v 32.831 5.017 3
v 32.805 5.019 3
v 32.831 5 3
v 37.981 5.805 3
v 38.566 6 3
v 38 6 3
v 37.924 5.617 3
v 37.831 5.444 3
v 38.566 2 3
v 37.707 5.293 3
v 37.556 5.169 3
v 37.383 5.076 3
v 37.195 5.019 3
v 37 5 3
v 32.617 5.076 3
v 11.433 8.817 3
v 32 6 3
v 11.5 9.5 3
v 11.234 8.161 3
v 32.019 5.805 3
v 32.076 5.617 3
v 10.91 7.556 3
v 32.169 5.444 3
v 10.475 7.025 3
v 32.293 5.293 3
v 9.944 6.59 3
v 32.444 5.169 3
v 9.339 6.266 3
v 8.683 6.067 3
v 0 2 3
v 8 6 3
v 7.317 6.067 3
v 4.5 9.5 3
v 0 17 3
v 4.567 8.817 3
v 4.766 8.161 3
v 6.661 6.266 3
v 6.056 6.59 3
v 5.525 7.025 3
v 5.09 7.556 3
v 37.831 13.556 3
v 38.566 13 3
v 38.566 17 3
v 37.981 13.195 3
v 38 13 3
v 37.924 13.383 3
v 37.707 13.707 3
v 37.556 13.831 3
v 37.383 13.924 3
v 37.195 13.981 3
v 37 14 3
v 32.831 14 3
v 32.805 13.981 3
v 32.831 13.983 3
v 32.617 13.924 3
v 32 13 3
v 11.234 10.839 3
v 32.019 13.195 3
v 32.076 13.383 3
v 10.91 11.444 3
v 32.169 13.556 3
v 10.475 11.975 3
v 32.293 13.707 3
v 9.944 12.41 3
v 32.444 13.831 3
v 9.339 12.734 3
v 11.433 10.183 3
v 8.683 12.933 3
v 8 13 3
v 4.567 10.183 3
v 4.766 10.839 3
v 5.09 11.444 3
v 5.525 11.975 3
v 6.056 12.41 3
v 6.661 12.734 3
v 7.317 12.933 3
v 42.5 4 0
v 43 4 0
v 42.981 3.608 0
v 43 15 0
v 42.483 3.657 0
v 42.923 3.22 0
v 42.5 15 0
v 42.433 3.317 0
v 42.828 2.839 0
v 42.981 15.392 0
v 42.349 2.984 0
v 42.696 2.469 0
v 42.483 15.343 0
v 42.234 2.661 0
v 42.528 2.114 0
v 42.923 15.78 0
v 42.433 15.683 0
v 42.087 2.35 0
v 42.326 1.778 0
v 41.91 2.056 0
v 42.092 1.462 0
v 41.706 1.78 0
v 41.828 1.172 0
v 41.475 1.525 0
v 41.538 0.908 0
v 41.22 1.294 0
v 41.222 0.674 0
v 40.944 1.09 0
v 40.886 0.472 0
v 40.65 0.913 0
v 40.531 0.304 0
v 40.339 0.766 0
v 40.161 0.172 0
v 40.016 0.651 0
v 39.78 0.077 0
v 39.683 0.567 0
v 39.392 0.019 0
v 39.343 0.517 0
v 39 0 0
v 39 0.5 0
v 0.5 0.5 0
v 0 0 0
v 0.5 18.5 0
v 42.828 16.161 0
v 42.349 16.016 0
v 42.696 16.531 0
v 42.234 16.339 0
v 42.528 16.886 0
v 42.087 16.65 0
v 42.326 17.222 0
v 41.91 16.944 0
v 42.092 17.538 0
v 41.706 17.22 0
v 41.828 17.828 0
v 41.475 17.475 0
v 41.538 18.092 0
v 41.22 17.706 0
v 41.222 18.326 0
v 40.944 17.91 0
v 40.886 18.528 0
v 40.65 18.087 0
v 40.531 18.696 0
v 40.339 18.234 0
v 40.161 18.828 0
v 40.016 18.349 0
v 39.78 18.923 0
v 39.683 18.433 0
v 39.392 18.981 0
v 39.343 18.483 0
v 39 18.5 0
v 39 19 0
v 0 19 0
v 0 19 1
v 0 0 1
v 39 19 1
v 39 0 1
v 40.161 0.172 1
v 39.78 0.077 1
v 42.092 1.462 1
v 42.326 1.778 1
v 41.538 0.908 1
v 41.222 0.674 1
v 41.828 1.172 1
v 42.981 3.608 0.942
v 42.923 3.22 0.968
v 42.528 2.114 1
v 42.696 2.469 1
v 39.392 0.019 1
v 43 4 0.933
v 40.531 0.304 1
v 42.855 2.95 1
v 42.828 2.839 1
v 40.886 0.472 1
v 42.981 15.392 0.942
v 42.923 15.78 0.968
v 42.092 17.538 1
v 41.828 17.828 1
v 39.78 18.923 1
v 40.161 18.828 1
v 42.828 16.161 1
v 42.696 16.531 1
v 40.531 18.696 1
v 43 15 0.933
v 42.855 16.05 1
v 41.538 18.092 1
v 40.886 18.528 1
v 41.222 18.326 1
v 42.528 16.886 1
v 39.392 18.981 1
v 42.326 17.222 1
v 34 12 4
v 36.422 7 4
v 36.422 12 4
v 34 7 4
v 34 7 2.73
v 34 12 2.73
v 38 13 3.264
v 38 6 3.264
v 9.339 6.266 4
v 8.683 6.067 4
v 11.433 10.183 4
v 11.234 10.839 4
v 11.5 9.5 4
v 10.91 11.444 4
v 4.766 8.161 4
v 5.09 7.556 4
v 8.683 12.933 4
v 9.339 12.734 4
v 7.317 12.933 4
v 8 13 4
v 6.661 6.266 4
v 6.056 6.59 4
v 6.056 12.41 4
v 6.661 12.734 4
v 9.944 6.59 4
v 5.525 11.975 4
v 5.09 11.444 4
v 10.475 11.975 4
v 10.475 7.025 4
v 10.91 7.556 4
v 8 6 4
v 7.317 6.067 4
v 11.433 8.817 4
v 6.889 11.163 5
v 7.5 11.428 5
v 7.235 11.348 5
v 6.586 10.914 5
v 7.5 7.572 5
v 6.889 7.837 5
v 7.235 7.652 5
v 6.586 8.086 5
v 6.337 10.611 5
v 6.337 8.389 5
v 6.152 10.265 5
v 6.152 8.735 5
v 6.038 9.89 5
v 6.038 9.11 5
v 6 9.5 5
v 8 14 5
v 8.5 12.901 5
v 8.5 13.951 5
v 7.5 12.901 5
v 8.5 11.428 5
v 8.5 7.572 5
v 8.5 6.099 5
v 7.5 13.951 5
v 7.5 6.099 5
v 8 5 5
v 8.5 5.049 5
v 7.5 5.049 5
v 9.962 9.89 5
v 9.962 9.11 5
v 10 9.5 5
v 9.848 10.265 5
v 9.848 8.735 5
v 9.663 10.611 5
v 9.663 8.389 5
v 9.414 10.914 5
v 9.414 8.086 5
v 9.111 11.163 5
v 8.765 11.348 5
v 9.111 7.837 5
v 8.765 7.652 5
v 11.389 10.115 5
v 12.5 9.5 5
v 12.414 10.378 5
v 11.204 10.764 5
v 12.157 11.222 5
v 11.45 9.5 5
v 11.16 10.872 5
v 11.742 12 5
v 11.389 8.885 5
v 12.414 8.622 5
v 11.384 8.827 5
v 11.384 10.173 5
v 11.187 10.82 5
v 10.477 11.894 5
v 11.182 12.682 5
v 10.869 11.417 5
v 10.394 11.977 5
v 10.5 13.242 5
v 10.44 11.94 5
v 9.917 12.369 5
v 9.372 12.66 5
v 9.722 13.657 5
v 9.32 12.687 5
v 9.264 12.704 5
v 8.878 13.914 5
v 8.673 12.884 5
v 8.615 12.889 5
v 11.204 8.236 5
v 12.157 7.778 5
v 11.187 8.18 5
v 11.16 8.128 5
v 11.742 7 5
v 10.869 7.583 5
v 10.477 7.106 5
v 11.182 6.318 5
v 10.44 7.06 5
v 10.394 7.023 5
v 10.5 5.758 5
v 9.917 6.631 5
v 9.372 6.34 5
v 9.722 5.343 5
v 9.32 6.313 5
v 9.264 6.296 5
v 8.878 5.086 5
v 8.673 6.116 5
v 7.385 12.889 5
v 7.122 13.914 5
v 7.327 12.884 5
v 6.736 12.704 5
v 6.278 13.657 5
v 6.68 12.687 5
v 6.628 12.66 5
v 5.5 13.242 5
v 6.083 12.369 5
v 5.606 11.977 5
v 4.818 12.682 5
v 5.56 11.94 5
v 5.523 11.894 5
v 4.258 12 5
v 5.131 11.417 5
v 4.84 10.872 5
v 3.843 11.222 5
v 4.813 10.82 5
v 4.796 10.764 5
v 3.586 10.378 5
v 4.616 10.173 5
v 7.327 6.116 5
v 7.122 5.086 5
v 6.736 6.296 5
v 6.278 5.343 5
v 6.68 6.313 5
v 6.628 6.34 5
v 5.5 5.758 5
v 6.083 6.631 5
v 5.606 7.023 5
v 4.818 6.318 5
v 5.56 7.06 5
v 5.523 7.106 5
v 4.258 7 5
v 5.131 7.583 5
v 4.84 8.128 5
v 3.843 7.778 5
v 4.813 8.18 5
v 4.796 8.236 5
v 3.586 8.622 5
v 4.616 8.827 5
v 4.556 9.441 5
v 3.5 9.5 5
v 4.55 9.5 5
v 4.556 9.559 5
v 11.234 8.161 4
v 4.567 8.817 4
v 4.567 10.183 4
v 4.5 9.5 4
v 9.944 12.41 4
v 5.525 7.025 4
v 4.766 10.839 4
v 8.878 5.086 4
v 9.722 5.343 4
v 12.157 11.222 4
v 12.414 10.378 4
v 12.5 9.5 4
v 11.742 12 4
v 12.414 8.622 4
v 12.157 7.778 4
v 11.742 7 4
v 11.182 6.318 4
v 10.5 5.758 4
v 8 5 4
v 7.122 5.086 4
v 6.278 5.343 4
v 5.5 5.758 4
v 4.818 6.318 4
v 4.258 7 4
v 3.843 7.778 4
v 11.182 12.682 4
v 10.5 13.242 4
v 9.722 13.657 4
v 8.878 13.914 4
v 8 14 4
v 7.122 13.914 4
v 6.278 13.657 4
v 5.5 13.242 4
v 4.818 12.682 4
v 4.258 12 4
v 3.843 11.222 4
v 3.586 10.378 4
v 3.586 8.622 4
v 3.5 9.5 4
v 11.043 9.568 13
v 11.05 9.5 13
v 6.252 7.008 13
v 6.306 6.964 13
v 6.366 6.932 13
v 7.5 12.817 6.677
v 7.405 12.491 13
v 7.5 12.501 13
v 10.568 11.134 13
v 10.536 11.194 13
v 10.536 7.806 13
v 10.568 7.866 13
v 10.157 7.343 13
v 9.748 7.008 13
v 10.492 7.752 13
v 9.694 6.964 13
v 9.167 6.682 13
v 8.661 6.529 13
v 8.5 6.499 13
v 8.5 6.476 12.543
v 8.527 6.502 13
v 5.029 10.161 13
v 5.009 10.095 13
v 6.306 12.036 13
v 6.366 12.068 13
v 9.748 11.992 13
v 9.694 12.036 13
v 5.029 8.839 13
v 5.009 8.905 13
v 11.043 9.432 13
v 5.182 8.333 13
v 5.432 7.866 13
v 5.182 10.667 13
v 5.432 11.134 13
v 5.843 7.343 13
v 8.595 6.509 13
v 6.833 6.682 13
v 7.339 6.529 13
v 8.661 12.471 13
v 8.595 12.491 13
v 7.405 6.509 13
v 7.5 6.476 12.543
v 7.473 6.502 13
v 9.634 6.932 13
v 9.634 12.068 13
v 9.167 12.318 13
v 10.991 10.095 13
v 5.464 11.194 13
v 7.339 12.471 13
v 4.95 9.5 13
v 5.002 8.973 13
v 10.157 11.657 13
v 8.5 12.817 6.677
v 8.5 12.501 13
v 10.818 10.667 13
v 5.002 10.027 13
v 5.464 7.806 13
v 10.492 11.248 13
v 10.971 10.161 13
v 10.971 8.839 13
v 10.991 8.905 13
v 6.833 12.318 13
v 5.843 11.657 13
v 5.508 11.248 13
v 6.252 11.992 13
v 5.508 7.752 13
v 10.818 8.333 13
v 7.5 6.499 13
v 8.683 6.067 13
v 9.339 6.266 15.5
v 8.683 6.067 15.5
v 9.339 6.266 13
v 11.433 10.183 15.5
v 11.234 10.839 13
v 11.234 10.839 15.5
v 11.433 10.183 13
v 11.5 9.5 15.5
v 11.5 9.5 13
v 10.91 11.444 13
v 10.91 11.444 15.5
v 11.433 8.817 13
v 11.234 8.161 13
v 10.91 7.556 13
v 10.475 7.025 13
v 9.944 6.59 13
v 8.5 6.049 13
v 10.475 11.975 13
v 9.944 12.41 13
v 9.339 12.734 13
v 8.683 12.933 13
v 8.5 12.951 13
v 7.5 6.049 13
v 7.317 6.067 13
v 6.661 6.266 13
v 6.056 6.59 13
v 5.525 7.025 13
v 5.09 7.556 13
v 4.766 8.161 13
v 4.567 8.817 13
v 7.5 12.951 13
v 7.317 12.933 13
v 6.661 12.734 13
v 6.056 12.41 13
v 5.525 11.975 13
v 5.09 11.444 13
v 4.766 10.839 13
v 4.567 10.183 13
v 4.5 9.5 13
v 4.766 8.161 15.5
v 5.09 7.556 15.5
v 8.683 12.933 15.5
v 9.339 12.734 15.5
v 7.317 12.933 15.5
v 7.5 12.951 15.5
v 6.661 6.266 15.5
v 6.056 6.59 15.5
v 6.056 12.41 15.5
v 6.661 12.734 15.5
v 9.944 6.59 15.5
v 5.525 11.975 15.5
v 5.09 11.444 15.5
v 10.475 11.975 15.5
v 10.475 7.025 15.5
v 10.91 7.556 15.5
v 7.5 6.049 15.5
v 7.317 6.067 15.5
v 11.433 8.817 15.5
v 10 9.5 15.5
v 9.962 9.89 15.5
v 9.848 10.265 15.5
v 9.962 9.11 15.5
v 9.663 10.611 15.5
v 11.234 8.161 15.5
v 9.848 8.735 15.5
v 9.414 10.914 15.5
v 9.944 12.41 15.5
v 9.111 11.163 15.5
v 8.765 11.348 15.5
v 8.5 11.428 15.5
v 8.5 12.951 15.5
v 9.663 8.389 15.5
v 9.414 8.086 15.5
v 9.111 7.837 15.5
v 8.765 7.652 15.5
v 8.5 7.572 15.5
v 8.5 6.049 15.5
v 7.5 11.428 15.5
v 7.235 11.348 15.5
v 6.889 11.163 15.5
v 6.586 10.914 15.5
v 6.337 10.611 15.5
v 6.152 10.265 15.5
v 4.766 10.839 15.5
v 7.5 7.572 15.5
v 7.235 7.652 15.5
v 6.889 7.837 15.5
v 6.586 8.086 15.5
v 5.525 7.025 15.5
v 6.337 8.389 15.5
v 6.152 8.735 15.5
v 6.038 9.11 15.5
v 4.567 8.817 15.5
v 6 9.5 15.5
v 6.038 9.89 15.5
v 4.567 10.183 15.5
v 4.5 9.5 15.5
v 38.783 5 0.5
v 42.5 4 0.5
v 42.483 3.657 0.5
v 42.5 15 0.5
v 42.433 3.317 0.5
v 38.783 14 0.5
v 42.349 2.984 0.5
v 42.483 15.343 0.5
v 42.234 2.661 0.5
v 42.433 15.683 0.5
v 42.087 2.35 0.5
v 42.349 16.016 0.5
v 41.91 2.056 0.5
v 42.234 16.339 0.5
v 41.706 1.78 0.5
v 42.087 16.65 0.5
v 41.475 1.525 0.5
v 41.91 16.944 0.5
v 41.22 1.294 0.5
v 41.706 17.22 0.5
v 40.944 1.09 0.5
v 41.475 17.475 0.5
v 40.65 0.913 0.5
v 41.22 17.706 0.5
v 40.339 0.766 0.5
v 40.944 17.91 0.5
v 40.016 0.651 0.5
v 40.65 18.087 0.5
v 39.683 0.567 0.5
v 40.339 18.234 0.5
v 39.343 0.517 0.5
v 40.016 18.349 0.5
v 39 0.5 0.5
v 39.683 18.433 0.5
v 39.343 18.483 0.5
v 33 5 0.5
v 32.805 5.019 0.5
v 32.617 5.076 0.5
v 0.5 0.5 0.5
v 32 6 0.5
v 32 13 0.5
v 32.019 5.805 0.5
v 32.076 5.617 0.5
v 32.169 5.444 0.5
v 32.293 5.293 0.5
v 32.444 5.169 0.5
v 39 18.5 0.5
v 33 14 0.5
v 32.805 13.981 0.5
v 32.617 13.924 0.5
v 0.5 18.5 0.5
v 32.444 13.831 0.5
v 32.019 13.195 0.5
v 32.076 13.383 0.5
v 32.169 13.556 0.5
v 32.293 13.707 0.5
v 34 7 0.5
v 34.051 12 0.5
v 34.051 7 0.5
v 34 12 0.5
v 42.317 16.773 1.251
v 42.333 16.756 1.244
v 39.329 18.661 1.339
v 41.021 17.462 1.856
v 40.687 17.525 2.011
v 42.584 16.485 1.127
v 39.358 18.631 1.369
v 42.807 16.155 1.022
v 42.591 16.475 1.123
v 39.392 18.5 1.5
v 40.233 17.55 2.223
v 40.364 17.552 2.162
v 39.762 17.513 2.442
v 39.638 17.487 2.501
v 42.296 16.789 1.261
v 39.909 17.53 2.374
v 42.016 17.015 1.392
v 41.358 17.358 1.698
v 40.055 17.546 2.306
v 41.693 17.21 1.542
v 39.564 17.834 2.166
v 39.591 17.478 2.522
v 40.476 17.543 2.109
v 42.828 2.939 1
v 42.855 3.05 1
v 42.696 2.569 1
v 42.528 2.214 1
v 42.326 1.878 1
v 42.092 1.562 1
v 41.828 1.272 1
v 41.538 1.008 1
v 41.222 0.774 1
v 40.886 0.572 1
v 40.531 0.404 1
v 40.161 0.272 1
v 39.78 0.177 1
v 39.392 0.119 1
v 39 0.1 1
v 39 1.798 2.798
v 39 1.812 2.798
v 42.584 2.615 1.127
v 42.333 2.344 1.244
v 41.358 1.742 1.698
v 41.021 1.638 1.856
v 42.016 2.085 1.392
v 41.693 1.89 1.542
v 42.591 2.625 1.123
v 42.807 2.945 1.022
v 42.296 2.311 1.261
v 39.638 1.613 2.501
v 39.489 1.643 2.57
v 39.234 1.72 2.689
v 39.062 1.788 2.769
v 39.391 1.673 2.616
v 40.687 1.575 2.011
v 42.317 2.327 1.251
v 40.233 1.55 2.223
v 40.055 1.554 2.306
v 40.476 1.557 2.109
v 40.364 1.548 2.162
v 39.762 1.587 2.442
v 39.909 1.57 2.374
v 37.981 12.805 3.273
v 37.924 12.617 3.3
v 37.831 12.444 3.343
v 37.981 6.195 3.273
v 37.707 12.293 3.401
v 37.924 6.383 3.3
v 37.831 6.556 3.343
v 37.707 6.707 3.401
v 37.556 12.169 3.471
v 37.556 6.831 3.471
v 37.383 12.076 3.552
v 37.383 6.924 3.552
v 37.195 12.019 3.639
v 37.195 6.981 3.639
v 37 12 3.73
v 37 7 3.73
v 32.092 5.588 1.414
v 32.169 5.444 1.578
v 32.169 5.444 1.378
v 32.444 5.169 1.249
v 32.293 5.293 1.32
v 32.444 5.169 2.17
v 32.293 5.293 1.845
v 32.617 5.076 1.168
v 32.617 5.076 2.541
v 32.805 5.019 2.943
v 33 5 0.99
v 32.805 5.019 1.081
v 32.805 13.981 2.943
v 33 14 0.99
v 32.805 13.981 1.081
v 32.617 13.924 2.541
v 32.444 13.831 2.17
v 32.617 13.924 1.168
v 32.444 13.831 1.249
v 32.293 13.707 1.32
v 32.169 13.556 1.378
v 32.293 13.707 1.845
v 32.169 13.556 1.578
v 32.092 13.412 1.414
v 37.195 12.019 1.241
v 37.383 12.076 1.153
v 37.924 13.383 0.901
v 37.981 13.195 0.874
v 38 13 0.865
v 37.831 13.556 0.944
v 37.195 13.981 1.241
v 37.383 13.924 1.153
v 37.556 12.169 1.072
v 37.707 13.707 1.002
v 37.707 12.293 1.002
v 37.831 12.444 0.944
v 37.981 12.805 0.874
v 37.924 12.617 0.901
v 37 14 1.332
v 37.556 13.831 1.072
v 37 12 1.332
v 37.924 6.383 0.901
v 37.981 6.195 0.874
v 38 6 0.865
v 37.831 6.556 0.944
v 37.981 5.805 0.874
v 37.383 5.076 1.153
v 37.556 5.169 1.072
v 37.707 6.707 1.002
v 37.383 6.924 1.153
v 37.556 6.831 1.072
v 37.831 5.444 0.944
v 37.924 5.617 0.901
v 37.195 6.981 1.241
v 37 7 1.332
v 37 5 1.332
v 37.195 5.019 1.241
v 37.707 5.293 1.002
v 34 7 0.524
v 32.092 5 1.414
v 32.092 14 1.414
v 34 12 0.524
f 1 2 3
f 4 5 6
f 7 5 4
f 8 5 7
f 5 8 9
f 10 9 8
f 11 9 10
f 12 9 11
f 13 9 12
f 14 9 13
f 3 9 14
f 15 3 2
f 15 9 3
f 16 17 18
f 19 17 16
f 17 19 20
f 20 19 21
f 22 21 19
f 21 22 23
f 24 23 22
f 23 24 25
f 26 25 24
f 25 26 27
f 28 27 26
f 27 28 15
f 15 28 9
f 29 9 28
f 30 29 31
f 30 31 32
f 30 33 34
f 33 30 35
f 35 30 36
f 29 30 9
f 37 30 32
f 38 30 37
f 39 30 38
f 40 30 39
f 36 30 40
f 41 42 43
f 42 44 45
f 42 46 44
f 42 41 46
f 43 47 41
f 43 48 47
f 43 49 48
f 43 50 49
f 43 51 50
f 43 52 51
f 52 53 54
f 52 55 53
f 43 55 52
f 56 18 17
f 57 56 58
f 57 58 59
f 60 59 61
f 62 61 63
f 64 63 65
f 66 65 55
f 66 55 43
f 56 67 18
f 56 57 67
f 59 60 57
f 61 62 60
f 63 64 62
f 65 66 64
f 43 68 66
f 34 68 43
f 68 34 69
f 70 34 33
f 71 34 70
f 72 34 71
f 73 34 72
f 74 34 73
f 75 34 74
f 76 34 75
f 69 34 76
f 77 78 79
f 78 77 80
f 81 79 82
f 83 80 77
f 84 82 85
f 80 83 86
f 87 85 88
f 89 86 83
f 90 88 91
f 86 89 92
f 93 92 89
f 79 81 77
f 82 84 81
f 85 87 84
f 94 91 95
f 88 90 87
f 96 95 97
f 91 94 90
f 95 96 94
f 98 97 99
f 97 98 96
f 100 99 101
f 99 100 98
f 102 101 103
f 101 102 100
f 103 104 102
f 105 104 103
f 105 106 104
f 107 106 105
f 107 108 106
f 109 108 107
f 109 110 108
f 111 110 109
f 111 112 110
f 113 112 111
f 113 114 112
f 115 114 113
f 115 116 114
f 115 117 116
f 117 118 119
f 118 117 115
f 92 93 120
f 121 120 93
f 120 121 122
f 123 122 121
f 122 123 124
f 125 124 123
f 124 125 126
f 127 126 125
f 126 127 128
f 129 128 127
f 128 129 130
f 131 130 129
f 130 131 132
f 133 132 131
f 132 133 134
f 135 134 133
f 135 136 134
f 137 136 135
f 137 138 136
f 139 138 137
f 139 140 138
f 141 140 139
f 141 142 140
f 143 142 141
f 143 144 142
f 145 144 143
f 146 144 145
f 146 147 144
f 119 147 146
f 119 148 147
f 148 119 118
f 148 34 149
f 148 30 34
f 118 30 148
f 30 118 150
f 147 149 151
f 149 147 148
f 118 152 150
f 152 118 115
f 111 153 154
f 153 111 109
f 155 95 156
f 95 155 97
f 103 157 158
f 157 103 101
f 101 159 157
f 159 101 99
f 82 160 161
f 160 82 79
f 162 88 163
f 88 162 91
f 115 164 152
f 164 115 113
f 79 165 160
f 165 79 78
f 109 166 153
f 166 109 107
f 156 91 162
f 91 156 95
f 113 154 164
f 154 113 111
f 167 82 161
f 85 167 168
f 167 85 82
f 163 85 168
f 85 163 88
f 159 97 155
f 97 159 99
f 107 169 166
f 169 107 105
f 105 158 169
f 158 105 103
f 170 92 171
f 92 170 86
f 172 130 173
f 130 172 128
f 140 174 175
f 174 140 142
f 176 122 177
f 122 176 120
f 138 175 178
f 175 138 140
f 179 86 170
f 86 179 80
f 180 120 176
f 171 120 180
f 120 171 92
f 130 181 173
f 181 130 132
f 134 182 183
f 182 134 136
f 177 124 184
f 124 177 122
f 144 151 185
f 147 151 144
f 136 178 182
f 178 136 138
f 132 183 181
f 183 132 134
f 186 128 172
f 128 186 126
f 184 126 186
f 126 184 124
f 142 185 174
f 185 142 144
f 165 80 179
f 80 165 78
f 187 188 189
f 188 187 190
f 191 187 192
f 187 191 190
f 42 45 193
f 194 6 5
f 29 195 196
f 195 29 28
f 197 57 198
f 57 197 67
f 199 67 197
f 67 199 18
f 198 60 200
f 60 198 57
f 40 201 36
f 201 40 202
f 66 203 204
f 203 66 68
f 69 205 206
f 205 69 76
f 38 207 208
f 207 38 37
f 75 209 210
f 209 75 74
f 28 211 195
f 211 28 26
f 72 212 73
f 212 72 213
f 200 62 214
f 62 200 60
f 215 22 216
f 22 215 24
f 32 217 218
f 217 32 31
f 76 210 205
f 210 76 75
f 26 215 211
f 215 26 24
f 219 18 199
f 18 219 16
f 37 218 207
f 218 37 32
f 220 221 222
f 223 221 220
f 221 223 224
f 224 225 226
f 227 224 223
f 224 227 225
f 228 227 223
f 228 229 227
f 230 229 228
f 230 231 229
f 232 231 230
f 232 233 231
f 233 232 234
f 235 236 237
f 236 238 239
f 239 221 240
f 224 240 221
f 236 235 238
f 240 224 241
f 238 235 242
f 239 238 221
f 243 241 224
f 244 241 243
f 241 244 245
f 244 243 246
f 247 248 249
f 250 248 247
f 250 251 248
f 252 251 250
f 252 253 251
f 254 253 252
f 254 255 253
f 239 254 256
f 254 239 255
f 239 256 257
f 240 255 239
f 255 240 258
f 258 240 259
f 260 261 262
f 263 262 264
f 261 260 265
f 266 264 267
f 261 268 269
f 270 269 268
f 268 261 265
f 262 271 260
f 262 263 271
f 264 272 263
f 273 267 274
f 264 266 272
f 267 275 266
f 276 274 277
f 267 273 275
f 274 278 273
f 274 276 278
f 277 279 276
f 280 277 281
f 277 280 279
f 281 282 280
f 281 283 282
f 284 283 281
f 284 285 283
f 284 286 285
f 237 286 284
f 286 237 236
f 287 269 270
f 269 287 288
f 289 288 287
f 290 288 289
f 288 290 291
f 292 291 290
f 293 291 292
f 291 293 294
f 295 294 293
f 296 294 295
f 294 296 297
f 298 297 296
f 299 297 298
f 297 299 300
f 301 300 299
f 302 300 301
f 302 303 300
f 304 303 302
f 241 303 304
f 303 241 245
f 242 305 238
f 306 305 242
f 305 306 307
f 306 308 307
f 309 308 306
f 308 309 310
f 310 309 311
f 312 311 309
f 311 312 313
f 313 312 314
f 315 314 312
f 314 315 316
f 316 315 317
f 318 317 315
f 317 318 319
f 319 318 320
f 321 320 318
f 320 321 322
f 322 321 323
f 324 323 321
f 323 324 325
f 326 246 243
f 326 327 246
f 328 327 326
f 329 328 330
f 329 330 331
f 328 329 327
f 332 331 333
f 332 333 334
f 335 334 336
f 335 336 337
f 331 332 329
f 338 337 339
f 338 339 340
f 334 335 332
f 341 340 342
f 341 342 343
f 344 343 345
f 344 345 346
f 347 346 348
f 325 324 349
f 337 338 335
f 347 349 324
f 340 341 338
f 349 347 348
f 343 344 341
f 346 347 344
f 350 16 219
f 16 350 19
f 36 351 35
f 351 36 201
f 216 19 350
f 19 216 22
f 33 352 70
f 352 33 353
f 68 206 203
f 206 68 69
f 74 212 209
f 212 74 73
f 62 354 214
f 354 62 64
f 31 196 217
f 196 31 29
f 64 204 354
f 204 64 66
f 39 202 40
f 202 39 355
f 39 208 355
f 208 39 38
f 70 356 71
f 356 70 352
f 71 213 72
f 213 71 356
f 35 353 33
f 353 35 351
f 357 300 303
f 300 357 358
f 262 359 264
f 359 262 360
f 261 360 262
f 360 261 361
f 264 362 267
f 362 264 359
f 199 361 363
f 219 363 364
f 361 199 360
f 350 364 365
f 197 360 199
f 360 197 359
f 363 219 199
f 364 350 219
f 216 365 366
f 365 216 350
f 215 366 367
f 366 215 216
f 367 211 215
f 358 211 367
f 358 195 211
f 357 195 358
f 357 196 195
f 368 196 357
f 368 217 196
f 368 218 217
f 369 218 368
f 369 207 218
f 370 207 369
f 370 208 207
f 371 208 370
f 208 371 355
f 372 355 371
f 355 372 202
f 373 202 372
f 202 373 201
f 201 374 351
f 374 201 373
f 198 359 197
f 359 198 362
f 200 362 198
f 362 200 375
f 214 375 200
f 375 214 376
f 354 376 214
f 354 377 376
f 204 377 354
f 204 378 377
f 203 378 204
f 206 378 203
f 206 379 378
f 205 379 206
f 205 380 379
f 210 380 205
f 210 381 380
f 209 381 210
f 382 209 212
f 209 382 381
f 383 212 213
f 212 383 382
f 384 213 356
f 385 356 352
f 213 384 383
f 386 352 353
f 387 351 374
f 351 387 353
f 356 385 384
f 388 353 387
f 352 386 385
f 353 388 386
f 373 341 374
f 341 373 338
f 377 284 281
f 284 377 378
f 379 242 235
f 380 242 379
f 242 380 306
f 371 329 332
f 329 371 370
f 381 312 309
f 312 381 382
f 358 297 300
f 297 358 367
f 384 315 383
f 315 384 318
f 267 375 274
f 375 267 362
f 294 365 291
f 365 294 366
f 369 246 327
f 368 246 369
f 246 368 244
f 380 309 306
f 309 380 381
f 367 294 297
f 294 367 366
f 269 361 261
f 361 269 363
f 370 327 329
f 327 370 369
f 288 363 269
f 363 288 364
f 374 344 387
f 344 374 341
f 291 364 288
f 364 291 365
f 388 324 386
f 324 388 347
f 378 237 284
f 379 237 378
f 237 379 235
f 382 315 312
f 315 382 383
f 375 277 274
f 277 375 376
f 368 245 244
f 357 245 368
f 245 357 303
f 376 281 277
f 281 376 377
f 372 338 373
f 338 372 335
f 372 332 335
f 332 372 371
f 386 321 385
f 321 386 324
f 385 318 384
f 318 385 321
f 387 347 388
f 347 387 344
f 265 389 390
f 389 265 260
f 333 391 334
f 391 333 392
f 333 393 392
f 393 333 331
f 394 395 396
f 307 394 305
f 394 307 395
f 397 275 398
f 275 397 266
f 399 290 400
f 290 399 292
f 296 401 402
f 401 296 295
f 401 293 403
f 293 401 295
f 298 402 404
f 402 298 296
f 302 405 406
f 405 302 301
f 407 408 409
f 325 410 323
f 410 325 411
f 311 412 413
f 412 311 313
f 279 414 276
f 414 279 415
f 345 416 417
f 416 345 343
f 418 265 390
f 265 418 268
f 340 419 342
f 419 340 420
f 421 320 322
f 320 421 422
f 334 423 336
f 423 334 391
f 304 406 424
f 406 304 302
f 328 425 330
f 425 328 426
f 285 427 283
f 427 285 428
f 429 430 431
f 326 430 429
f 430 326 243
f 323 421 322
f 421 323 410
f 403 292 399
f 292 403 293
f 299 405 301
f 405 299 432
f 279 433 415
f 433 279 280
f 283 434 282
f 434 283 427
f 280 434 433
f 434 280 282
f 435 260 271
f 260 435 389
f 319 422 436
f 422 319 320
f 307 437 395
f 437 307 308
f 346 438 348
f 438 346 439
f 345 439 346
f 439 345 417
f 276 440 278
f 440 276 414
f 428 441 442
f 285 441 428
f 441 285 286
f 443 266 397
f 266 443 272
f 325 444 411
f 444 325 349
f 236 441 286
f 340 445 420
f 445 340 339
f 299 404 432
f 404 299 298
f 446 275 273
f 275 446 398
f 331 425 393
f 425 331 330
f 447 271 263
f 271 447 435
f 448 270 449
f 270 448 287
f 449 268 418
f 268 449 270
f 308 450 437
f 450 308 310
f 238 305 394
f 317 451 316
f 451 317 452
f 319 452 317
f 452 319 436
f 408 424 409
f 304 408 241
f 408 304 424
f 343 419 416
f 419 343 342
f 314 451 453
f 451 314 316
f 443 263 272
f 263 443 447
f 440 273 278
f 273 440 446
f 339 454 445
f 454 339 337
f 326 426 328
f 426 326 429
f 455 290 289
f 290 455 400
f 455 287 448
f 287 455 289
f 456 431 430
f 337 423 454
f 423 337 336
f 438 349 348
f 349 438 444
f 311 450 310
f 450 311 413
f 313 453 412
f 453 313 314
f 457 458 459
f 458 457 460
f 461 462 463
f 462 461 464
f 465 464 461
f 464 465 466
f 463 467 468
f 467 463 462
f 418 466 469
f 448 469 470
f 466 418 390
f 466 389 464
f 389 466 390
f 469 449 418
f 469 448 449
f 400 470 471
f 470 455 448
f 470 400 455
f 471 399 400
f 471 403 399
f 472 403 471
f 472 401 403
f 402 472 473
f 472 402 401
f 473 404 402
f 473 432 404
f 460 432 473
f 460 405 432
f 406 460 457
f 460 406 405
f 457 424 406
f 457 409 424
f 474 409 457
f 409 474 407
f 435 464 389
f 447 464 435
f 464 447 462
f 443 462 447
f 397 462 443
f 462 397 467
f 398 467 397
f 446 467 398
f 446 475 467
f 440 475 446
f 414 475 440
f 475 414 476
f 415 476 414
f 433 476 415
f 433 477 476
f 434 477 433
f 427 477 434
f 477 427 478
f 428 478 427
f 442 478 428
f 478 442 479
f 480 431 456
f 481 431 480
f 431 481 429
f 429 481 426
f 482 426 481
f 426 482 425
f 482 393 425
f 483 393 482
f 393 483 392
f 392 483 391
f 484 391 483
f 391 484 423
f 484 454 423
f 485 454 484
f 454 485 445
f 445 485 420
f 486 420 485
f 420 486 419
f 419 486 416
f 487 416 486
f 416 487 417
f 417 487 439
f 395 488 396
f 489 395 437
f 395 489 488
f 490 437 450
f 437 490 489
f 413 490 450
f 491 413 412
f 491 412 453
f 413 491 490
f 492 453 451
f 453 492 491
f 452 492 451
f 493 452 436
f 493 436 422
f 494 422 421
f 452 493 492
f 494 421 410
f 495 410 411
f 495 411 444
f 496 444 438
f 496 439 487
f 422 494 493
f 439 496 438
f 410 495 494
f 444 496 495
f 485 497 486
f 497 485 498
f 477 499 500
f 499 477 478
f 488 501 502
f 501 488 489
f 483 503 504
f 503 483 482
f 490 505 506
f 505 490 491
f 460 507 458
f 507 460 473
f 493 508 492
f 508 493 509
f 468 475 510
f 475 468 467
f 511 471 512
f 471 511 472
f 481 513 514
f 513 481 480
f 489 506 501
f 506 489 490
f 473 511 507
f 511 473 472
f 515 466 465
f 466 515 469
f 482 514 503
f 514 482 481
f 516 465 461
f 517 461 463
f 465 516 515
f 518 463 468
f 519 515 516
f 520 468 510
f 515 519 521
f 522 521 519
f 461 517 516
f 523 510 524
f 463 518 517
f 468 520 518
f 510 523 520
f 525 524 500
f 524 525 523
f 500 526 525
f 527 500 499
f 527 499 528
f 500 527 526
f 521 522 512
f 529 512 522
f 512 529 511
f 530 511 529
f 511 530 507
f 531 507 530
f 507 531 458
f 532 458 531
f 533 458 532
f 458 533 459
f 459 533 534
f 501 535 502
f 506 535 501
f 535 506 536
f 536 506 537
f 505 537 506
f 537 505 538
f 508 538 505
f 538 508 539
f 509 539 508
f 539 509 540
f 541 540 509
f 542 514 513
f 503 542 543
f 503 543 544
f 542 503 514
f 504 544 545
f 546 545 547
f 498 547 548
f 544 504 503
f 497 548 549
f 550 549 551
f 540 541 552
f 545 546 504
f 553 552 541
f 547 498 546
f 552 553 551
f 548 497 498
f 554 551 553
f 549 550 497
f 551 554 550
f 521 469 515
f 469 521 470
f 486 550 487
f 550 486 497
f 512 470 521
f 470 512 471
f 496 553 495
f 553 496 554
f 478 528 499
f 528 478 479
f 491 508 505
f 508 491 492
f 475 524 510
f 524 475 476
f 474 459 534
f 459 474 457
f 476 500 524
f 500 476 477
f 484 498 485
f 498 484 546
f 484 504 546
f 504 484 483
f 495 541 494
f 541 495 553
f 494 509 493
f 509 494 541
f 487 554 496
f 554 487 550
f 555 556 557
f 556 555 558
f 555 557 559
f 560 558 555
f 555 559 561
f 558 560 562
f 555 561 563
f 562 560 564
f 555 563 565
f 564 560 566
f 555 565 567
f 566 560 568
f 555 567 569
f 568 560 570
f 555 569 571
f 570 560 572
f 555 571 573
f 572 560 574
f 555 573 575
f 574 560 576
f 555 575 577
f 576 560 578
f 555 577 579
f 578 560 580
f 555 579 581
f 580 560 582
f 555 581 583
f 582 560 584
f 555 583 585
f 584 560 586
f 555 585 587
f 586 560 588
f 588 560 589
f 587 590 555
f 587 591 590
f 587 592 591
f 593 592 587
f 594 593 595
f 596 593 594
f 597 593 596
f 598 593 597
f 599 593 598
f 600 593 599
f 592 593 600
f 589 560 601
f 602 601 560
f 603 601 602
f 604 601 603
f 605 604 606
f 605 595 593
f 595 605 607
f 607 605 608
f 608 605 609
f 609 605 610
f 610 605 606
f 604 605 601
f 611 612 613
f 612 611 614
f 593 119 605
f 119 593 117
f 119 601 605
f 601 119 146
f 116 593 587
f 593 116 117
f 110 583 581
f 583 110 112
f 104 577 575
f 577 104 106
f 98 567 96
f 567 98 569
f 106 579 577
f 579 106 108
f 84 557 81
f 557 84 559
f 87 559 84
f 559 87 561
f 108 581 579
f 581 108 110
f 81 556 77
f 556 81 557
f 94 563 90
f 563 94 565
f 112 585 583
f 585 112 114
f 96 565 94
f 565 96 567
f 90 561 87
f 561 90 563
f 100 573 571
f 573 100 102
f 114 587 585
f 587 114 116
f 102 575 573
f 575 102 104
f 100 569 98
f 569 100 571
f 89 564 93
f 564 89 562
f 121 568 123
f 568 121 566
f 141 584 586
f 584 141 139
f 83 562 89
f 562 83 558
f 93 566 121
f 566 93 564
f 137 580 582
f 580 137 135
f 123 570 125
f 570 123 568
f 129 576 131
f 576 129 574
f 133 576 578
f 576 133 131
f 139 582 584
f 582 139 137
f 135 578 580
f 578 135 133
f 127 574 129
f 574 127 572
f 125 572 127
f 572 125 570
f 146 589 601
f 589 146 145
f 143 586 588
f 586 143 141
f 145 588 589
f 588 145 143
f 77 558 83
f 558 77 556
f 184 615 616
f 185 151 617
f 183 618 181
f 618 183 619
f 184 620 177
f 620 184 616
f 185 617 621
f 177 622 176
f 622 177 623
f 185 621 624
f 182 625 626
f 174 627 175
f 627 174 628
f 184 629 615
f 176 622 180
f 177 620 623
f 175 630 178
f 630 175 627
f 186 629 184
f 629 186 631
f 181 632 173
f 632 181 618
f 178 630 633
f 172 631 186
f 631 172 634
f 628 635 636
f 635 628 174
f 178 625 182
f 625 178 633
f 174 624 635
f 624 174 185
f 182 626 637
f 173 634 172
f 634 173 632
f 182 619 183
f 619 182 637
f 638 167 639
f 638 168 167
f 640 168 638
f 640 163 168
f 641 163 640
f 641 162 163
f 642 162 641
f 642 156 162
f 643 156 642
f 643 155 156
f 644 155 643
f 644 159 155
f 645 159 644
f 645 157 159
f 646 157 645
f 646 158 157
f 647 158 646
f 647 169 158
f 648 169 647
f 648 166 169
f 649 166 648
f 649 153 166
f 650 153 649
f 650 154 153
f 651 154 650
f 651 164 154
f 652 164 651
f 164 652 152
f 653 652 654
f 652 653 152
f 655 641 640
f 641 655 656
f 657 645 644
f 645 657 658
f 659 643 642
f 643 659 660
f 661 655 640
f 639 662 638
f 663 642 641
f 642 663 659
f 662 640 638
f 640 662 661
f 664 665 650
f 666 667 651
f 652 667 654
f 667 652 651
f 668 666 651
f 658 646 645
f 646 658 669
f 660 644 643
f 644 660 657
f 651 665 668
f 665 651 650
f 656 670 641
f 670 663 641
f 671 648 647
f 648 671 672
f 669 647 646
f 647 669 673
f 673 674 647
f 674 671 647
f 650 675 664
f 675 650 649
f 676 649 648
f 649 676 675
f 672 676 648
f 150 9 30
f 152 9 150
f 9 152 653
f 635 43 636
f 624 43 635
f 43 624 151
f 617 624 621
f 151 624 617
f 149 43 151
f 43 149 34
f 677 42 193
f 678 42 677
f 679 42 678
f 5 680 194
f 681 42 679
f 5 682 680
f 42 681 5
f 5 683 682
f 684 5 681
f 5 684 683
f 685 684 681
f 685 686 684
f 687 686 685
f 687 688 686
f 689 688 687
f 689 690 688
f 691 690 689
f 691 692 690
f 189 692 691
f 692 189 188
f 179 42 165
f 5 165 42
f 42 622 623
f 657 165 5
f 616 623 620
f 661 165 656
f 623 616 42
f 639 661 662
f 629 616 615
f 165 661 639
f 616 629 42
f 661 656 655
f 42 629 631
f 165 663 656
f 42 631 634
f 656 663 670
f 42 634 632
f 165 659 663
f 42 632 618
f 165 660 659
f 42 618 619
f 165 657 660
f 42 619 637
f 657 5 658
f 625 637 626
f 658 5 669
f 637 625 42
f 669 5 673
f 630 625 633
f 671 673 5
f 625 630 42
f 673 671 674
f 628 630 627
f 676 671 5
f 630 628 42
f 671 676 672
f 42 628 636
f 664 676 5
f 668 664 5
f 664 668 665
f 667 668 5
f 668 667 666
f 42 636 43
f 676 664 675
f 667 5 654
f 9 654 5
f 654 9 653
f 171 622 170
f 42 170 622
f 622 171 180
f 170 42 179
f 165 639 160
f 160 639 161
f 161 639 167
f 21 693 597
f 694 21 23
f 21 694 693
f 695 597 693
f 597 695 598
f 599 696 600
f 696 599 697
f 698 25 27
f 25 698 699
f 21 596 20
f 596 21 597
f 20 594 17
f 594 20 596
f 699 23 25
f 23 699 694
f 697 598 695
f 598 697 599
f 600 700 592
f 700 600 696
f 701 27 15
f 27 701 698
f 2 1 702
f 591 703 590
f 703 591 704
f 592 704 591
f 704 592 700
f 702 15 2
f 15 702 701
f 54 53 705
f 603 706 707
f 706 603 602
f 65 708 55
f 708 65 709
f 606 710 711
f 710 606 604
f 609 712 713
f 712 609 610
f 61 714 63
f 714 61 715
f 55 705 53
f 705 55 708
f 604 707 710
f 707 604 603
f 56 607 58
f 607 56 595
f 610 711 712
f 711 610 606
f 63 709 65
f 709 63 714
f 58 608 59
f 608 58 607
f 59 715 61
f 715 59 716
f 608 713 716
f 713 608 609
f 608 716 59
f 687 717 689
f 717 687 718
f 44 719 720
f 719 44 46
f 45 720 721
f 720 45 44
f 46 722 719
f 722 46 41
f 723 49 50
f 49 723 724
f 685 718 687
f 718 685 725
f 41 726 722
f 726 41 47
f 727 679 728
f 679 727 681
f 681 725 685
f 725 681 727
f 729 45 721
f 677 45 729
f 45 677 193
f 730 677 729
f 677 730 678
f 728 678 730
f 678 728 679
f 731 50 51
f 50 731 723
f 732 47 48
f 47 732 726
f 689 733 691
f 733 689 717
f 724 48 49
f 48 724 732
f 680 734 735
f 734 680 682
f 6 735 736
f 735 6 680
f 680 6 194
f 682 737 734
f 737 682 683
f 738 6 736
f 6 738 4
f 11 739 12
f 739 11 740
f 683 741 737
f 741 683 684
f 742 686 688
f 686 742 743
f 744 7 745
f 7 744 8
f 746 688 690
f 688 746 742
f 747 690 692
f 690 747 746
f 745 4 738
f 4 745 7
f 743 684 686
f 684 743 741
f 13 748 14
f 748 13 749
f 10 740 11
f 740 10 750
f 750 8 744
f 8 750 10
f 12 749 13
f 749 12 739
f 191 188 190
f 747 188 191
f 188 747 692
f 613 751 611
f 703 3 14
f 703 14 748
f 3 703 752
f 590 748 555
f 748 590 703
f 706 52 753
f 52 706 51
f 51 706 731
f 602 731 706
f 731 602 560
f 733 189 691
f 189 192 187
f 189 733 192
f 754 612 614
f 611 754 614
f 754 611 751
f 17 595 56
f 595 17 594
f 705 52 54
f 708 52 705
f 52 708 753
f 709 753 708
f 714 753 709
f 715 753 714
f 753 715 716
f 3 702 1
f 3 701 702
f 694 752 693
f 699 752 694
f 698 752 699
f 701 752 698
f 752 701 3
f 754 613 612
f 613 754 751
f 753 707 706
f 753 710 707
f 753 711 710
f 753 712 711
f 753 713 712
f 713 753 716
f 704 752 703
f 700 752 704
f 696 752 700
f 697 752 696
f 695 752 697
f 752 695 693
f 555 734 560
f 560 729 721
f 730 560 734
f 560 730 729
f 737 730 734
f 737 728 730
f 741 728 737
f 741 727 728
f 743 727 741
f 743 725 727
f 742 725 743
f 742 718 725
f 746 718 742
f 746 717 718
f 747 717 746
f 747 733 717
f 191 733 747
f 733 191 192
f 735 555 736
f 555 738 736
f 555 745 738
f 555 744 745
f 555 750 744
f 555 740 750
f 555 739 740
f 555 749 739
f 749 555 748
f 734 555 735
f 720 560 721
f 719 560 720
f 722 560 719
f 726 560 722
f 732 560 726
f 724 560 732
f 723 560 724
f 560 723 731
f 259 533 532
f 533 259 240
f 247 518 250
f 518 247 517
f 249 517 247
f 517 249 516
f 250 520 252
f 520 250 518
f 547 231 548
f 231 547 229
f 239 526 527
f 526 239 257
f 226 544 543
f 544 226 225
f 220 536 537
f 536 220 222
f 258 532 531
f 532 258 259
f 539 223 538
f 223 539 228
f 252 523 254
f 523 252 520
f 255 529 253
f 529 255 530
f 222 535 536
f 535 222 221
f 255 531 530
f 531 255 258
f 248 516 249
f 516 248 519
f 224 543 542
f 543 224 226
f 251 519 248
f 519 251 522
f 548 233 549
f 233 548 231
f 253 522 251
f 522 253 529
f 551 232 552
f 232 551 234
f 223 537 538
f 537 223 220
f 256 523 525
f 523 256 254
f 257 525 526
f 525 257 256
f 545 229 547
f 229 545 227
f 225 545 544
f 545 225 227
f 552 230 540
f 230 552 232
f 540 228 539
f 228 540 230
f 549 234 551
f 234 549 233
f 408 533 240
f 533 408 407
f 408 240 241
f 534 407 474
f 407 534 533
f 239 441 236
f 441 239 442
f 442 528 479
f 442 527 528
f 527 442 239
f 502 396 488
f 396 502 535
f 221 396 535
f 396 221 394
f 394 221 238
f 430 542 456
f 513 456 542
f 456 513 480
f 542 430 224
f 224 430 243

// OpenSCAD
module base() {
 union() {
cube([39, 19, 3]);
translate ([39, 4, 0])
  cylinder (h = 3, r = 4, $fn = 64) ;
  
translate ([39, 15, 0])
cylinder (h = 3, r = 4, $fn = 64) ;
translate ([38, 4, 0]) 
cube([5, 11, 3]);

   // ce qui deviendra la languette
  translate([34, 6, 0])
   cube([5, 7, 4]);
 // ajout base support  
translate ([8, 9.5, 1])
   cylinder(h=4, r=3.5, $fn=32); // ce qui doit passer dans l'échancrure de la tôle
   translate ([8, 9.5, 4])
   cylinder(h=1, r=4.5, $fn=32); // la colerette qui retient le support sur la tôle
   translate ([8, 9.5, 4])
   cylinder(h=10, r1=3.5, r2=3, $fn=32); // la base pleine du support de roulette, épaisseur + 1 mm pour bien s'enfoncer dans la base et rayon à vérifier
translate ([8, 9.5, 13])
   cylinder(h=2.5, r=3.5, $fn=32); // le dessus du support de roulette, épaisseur + 1 mm pour bien s'enfoncer dans la base et rayon à vérifier
}
}

module vide() {
translate ([0.5, 0.5, 0])
  union() {
cube([38.5, 18, 0.5]);
translate ([38.5, 3.5, 0])
  cylinder (h = 0.5, r = 3.5, $fn = 64) ;
translate ([38.5, 14.5, 0])
cylinder (h = 0.5, r = 3.5, $fn = 64) ;
translate ([37.5, 3.5, 0]) 
cube([4.5, 11, 0.5]);
}
}




module chanfrein() {

    // Chanfrein côté Y = 0
  translate([0, -1, 0])
        rotate([45, 0, 0])
            cube([50, 5, 5]);

    // Chanfrein côté Y = l
   translate([0, 20, 0])
        rotate([45, 0, 0])
         cube([50, 5, 5]);

  // chanfrein x = 43
  translate([45, 0, 0]) 
  rotate([0, -65, 0])
  cube([10, 19, 10]);

// chanfrein congé
  translate([39, 15, 1])
  difference() {
cube([7.1, 7.1, 7.1]);
  cylinder(h = 2.1, r1 = 4, r2 = 2, $fn = 64);
  }

// chanfrein congé x = 43, y = 0
  translate([39, 4.1, 1])
  difference() {
translate([0, -7.1, 0])
  cube([7.1, 7.1, 6.1]);
  cylinder(h = 2.1, r1 = 4, r2 = 2, $fn = 64);
  }
}

module ouverture() {
translate([33, 6, -1])
union() {
  cylinder(h = 5, r = 1, $fn = 32);
translate([0, 7, 0])
cylinder(h = 5, r = 1, $fn = 32);
translate([4, 7, 0])
cylinder(h = 5, r = 1, $fn = 32);
translate([4, 0, 0])
cylinder(h = 5, r = 1, $fn = 32);
translate([0, -1, 0])
cube([4, 2, 5]);
 translate([0, 6, 0])
cube([4, 2, 5]);
 translate([-1, 0, 0])
cube([2, 7, 5]);

  translate([9, -1, 0]) 
  rotate([0, -155, 0])
  cube([10, 9, 2]);
}
}

module vide_support() {
  translate ([8, 9.5, 5])
   cylinder(h=15, r=2, $fn=32); // le trou principal dans le support à roulette
translate([7.5, 0, 5])  
  cube([1, 19, 15]); // la fente du support à roulette
}

module plaque() {
difference() {
  base() ;
    vide();
chanfrein() ;
  ouverture();
  vide_support();
}
}
plaque() ;
